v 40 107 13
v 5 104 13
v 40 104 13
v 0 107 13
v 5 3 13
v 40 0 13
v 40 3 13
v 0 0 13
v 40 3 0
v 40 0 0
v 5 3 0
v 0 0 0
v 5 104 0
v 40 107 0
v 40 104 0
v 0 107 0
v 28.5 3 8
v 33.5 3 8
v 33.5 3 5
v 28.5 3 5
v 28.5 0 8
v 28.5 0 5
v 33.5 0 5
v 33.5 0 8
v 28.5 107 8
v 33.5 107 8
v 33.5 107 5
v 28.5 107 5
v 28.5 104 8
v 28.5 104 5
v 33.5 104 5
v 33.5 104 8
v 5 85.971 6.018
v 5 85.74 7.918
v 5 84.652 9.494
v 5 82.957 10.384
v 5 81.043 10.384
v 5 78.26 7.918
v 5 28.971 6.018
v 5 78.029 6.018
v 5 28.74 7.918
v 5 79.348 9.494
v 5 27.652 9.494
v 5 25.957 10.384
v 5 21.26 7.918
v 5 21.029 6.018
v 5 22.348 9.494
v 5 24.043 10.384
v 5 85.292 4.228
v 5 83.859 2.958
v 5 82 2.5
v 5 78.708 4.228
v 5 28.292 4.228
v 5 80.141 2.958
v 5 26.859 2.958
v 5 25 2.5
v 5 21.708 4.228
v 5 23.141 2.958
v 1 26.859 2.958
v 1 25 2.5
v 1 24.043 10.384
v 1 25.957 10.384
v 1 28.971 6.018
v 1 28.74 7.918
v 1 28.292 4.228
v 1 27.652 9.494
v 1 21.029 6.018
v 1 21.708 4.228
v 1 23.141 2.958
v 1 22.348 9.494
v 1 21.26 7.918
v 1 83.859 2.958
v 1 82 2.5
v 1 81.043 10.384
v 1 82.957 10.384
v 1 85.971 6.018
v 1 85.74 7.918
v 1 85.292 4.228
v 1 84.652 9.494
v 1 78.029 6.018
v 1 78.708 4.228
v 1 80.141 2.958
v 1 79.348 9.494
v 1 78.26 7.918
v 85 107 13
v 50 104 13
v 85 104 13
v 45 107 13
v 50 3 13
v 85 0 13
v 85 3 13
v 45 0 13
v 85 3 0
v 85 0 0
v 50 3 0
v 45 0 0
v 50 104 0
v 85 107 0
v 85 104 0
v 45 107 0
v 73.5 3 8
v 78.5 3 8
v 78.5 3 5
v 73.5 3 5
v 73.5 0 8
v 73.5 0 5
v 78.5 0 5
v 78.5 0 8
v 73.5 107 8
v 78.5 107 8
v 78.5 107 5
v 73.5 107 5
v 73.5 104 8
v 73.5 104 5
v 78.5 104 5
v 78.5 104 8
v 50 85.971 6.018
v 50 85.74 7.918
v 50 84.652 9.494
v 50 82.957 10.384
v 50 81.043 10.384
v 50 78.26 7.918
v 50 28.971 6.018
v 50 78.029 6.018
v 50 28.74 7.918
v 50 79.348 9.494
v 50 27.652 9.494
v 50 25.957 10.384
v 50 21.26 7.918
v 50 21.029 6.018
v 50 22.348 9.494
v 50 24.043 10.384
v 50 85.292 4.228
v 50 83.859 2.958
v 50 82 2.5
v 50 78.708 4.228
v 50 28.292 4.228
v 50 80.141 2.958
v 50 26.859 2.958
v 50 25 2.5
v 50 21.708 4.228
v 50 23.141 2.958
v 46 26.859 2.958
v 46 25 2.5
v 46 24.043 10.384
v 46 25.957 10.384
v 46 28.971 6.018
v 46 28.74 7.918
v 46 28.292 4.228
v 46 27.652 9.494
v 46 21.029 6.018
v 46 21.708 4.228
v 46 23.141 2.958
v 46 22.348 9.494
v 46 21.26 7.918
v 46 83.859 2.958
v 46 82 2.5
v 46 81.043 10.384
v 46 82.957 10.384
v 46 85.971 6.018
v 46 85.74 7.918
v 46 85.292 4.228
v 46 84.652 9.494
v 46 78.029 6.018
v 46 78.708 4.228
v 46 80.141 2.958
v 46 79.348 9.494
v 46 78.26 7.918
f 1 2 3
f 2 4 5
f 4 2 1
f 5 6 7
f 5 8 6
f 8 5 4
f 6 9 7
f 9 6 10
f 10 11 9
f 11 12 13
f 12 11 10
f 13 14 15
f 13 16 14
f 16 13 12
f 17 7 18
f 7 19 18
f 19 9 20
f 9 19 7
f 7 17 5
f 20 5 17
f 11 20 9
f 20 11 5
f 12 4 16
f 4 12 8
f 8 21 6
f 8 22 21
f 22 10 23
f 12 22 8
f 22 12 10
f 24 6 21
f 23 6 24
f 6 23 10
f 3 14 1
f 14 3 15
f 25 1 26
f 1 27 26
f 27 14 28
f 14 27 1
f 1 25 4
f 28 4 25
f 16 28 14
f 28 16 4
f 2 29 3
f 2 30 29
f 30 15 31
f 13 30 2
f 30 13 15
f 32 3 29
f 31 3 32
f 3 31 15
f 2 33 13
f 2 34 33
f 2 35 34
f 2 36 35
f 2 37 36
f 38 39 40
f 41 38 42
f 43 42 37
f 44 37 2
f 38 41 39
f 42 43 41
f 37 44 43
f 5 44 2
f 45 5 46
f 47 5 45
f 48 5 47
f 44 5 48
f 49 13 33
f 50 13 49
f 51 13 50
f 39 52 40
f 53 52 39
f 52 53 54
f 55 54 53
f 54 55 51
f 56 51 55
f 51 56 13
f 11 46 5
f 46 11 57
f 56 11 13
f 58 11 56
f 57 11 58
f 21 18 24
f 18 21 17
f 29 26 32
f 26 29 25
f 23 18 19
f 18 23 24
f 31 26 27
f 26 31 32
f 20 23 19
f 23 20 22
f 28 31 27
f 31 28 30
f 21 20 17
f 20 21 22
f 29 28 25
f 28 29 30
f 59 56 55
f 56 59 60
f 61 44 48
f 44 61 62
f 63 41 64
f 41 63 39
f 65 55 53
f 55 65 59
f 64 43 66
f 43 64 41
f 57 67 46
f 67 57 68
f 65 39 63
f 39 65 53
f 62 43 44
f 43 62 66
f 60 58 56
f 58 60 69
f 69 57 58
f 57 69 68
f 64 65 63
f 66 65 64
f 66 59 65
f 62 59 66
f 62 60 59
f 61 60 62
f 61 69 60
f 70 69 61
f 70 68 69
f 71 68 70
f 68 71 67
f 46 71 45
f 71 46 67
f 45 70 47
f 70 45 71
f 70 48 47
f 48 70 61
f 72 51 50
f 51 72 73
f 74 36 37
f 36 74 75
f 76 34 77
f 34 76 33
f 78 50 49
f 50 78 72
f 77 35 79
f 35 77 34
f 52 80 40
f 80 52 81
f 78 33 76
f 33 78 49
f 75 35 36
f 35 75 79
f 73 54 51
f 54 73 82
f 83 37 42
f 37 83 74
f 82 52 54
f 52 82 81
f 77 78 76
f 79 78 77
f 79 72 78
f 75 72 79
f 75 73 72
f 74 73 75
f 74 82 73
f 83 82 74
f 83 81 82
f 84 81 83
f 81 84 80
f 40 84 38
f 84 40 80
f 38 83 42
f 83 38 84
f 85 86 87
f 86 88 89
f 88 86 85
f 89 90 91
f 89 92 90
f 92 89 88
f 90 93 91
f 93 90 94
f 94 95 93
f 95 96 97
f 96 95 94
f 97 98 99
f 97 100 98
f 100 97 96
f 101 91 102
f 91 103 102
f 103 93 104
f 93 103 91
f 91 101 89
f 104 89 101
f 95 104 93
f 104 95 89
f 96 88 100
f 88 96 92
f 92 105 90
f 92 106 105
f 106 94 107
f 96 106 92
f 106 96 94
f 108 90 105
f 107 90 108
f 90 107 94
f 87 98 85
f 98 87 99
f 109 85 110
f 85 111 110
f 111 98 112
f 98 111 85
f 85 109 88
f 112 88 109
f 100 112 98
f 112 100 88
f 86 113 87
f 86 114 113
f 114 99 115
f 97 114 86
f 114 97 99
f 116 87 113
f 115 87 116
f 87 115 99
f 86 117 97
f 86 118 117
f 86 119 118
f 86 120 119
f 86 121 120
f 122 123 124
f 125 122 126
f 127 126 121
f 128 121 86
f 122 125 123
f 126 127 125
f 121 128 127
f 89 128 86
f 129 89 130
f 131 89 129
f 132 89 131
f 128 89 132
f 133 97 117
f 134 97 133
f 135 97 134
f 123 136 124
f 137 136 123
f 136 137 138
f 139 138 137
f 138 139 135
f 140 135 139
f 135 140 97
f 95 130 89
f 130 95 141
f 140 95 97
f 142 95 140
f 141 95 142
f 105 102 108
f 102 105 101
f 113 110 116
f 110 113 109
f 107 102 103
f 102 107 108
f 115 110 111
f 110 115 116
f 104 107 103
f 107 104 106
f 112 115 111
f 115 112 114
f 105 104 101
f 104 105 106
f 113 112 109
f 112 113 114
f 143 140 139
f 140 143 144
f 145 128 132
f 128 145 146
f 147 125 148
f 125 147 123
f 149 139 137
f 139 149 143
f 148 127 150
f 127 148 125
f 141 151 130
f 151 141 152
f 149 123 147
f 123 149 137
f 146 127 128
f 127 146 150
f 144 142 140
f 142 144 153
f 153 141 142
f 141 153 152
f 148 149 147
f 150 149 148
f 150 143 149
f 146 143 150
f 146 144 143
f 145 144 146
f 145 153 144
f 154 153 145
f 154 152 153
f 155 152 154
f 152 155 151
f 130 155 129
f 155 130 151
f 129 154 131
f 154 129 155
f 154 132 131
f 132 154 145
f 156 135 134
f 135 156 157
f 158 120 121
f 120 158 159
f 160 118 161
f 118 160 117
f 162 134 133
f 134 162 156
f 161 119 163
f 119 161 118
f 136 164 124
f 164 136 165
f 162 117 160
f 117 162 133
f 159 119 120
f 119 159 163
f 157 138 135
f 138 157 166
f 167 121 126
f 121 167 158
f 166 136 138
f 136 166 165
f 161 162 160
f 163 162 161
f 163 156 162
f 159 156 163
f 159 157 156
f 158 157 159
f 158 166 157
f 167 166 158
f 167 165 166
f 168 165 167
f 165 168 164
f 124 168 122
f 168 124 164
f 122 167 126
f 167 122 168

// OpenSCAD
body_width = 173;
body_height = 97;
body_thickness = 21;

servo_width = 23;
servo_height = 22;
servo_thickness = 12;

holder_thickness = 4;

clip_width = 13;
clip_thickness = 4;

module holder_plate_clip(x=0, y=0, z=0) {

    difference() {
        union() {
            // sides
            translate([x, y, z]) { cube([clip_width, clip_thickness-1, 40]); }
            translate([x, y + 7 + body_height, z]) { cube([clip_width, clip_thickness - 1, 40]); }

            translate([x, y, z]) { cube([clip_width, body_height + 10, 5]); } // bottom plate
        }
        translate([x + (clip_width / 2) - (3 / 2), y - 5, holder_thickness + 1 + 23.5/*z + 5 + body_thickness + holder_thickness*/]) { cube([3, body_height + 20, 5]); } // hole
        translate([clip_width / 2, 25, 1]) { cylinder(10, 4, 4, [0, 0, 0]); };
        translate([clip_width / 2, 82, 1]) { cylinder(10, 4, 4, [0, 0, 0]); };

    }
}


translate([0, 0, clip_width]) { rotate([0, 90, 0]) { holder_plate_clip(); } }
translate([45, 0, clip_width]) { rotate([0, 90, 0]) { holder_plate_clip(); } }
